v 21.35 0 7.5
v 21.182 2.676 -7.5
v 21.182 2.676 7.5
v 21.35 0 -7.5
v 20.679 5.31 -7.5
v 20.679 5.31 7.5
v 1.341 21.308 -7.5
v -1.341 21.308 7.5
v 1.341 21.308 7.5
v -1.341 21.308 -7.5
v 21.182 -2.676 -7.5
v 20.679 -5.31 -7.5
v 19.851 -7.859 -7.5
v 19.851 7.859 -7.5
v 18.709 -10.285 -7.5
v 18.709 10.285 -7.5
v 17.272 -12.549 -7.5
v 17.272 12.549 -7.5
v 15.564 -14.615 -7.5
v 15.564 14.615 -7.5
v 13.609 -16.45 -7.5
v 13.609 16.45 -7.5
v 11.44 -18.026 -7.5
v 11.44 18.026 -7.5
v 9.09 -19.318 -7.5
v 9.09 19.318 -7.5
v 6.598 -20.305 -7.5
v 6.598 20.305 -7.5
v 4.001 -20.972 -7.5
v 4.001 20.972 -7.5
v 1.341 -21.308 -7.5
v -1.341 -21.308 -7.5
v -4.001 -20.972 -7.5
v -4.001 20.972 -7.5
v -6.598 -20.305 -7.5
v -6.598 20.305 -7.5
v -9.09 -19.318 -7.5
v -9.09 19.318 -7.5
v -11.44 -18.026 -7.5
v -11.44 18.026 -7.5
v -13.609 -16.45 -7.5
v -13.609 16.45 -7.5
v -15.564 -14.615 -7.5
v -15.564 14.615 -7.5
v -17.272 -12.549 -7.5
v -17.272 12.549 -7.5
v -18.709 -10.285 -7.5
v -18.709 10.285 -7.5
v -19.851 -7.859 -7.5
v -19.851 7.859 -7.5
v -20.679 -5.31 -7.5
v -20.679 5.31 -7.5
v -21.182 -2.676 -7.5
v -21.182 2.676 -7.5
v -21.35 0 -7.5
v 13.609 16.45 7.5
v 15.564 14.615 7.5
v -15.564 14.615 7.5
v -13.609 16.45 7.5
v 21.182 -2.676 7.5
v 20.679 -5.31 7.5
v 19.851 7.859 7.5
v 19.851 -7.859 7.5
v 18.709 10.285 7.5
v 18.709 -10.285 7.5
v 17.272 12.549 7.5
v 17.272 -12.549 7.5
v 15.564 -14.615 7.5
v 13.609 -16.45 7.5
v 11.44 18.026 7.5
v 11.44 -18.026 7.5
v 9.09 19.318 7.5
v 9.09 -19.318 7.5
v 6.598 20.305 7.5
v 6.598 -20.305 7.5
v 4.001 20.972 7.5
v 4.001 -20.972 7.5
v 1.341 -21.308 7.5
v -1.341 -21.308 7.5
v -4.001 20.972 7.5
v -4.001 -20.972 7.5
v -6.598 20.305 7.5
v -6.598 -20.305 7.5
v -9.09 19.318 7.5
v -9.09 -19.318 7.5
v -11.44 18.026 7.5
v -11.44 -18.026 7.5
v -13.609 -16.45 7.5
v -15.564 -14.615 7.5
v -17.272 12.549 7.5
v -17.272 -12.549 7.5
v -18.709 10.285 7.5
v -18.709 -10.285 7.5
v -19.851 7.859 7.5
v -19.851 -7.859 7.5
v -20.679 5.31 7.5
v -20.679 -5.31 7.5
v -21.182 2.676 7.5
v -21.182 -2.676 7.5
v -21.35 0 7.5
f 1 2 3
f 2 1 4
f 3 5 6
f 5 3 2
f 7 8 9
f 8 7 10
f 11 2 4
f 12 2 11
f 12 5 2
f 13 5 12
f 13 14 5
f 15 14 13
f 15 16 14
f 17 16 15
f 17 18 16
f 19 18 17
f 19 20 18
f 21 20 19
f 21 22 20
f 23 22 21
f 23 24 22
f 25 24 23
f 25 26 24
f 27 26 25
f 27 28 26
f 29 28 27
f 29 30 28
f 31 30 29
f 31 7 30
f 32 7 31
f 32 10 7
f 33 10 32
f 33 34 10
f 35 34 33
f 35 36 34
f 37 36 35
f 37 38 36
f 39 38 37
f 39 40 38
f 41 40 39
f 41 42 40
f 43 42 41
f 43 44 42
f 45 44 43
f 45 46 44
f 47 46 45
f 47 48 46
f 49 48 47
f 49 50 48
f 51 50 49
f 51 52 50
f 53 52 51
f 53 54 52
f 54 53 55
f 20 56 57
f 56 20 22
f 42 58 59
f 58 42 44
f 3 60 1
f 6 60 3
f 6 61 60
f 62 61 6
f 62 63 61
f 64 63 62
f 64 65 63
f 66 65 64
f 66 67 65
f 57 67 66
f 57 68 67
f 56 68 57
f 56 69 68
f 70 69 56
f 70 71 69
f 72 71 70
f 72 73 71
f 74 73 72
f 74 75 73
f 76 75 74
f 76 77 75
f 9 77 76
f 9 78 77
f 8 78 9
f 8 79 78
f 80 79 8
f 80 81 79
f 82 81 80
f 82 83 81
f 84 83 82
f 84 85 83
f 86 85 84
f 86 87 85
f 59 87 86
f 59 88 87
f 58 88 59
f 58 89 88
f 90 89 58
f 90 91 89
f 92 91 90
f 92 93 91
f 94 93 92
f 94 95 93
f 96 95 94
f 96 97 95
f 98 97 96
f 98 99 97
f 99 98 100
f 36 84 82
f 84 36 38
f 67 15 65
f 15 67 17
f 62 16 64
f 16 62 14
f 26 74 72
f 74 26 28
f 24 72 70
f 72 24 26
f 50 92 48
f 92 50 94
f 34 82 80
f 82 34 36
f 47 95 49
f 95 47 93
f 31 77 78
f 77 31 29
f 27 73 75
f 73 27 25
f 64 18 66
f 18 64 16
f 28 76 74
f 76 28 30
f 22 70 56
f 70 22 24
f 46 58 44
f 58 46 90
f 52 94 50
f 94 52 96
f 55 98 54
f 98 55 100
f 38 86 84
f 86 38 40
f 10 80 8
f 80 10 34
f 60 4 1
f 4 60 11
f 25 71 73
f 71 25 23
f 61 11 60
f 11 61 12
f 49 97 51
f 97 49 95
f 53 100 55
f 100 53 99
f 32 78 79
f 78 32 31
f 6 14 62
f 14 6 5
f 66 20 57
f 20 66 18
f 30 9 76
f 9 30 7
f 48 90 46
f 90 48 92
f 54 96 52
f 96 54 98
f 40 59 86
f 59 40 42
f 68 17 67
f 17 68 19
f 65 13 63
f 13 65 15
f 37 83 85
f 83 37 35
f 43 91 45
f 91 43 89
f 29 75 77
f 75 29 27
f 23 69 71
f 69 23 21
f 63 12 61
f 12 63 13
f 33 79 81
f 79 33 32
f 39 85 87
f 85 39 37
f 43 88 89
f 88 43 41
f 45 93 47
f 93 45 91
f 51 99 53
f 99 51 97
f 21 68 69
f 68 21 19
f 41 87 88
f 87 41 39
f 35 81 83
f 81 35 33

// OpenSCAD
$fn = 50;


difference() {
	union() {
		translate(v = [0, 0, -7.5000000000]) {
			cylinder(h = 15, r = 21.3500000000);
		}
	}
	union() {
		translate(v = [0, 0, -100.0000000000]) {
			cylinder(h = 200, r = 0);
		}
	}
}
